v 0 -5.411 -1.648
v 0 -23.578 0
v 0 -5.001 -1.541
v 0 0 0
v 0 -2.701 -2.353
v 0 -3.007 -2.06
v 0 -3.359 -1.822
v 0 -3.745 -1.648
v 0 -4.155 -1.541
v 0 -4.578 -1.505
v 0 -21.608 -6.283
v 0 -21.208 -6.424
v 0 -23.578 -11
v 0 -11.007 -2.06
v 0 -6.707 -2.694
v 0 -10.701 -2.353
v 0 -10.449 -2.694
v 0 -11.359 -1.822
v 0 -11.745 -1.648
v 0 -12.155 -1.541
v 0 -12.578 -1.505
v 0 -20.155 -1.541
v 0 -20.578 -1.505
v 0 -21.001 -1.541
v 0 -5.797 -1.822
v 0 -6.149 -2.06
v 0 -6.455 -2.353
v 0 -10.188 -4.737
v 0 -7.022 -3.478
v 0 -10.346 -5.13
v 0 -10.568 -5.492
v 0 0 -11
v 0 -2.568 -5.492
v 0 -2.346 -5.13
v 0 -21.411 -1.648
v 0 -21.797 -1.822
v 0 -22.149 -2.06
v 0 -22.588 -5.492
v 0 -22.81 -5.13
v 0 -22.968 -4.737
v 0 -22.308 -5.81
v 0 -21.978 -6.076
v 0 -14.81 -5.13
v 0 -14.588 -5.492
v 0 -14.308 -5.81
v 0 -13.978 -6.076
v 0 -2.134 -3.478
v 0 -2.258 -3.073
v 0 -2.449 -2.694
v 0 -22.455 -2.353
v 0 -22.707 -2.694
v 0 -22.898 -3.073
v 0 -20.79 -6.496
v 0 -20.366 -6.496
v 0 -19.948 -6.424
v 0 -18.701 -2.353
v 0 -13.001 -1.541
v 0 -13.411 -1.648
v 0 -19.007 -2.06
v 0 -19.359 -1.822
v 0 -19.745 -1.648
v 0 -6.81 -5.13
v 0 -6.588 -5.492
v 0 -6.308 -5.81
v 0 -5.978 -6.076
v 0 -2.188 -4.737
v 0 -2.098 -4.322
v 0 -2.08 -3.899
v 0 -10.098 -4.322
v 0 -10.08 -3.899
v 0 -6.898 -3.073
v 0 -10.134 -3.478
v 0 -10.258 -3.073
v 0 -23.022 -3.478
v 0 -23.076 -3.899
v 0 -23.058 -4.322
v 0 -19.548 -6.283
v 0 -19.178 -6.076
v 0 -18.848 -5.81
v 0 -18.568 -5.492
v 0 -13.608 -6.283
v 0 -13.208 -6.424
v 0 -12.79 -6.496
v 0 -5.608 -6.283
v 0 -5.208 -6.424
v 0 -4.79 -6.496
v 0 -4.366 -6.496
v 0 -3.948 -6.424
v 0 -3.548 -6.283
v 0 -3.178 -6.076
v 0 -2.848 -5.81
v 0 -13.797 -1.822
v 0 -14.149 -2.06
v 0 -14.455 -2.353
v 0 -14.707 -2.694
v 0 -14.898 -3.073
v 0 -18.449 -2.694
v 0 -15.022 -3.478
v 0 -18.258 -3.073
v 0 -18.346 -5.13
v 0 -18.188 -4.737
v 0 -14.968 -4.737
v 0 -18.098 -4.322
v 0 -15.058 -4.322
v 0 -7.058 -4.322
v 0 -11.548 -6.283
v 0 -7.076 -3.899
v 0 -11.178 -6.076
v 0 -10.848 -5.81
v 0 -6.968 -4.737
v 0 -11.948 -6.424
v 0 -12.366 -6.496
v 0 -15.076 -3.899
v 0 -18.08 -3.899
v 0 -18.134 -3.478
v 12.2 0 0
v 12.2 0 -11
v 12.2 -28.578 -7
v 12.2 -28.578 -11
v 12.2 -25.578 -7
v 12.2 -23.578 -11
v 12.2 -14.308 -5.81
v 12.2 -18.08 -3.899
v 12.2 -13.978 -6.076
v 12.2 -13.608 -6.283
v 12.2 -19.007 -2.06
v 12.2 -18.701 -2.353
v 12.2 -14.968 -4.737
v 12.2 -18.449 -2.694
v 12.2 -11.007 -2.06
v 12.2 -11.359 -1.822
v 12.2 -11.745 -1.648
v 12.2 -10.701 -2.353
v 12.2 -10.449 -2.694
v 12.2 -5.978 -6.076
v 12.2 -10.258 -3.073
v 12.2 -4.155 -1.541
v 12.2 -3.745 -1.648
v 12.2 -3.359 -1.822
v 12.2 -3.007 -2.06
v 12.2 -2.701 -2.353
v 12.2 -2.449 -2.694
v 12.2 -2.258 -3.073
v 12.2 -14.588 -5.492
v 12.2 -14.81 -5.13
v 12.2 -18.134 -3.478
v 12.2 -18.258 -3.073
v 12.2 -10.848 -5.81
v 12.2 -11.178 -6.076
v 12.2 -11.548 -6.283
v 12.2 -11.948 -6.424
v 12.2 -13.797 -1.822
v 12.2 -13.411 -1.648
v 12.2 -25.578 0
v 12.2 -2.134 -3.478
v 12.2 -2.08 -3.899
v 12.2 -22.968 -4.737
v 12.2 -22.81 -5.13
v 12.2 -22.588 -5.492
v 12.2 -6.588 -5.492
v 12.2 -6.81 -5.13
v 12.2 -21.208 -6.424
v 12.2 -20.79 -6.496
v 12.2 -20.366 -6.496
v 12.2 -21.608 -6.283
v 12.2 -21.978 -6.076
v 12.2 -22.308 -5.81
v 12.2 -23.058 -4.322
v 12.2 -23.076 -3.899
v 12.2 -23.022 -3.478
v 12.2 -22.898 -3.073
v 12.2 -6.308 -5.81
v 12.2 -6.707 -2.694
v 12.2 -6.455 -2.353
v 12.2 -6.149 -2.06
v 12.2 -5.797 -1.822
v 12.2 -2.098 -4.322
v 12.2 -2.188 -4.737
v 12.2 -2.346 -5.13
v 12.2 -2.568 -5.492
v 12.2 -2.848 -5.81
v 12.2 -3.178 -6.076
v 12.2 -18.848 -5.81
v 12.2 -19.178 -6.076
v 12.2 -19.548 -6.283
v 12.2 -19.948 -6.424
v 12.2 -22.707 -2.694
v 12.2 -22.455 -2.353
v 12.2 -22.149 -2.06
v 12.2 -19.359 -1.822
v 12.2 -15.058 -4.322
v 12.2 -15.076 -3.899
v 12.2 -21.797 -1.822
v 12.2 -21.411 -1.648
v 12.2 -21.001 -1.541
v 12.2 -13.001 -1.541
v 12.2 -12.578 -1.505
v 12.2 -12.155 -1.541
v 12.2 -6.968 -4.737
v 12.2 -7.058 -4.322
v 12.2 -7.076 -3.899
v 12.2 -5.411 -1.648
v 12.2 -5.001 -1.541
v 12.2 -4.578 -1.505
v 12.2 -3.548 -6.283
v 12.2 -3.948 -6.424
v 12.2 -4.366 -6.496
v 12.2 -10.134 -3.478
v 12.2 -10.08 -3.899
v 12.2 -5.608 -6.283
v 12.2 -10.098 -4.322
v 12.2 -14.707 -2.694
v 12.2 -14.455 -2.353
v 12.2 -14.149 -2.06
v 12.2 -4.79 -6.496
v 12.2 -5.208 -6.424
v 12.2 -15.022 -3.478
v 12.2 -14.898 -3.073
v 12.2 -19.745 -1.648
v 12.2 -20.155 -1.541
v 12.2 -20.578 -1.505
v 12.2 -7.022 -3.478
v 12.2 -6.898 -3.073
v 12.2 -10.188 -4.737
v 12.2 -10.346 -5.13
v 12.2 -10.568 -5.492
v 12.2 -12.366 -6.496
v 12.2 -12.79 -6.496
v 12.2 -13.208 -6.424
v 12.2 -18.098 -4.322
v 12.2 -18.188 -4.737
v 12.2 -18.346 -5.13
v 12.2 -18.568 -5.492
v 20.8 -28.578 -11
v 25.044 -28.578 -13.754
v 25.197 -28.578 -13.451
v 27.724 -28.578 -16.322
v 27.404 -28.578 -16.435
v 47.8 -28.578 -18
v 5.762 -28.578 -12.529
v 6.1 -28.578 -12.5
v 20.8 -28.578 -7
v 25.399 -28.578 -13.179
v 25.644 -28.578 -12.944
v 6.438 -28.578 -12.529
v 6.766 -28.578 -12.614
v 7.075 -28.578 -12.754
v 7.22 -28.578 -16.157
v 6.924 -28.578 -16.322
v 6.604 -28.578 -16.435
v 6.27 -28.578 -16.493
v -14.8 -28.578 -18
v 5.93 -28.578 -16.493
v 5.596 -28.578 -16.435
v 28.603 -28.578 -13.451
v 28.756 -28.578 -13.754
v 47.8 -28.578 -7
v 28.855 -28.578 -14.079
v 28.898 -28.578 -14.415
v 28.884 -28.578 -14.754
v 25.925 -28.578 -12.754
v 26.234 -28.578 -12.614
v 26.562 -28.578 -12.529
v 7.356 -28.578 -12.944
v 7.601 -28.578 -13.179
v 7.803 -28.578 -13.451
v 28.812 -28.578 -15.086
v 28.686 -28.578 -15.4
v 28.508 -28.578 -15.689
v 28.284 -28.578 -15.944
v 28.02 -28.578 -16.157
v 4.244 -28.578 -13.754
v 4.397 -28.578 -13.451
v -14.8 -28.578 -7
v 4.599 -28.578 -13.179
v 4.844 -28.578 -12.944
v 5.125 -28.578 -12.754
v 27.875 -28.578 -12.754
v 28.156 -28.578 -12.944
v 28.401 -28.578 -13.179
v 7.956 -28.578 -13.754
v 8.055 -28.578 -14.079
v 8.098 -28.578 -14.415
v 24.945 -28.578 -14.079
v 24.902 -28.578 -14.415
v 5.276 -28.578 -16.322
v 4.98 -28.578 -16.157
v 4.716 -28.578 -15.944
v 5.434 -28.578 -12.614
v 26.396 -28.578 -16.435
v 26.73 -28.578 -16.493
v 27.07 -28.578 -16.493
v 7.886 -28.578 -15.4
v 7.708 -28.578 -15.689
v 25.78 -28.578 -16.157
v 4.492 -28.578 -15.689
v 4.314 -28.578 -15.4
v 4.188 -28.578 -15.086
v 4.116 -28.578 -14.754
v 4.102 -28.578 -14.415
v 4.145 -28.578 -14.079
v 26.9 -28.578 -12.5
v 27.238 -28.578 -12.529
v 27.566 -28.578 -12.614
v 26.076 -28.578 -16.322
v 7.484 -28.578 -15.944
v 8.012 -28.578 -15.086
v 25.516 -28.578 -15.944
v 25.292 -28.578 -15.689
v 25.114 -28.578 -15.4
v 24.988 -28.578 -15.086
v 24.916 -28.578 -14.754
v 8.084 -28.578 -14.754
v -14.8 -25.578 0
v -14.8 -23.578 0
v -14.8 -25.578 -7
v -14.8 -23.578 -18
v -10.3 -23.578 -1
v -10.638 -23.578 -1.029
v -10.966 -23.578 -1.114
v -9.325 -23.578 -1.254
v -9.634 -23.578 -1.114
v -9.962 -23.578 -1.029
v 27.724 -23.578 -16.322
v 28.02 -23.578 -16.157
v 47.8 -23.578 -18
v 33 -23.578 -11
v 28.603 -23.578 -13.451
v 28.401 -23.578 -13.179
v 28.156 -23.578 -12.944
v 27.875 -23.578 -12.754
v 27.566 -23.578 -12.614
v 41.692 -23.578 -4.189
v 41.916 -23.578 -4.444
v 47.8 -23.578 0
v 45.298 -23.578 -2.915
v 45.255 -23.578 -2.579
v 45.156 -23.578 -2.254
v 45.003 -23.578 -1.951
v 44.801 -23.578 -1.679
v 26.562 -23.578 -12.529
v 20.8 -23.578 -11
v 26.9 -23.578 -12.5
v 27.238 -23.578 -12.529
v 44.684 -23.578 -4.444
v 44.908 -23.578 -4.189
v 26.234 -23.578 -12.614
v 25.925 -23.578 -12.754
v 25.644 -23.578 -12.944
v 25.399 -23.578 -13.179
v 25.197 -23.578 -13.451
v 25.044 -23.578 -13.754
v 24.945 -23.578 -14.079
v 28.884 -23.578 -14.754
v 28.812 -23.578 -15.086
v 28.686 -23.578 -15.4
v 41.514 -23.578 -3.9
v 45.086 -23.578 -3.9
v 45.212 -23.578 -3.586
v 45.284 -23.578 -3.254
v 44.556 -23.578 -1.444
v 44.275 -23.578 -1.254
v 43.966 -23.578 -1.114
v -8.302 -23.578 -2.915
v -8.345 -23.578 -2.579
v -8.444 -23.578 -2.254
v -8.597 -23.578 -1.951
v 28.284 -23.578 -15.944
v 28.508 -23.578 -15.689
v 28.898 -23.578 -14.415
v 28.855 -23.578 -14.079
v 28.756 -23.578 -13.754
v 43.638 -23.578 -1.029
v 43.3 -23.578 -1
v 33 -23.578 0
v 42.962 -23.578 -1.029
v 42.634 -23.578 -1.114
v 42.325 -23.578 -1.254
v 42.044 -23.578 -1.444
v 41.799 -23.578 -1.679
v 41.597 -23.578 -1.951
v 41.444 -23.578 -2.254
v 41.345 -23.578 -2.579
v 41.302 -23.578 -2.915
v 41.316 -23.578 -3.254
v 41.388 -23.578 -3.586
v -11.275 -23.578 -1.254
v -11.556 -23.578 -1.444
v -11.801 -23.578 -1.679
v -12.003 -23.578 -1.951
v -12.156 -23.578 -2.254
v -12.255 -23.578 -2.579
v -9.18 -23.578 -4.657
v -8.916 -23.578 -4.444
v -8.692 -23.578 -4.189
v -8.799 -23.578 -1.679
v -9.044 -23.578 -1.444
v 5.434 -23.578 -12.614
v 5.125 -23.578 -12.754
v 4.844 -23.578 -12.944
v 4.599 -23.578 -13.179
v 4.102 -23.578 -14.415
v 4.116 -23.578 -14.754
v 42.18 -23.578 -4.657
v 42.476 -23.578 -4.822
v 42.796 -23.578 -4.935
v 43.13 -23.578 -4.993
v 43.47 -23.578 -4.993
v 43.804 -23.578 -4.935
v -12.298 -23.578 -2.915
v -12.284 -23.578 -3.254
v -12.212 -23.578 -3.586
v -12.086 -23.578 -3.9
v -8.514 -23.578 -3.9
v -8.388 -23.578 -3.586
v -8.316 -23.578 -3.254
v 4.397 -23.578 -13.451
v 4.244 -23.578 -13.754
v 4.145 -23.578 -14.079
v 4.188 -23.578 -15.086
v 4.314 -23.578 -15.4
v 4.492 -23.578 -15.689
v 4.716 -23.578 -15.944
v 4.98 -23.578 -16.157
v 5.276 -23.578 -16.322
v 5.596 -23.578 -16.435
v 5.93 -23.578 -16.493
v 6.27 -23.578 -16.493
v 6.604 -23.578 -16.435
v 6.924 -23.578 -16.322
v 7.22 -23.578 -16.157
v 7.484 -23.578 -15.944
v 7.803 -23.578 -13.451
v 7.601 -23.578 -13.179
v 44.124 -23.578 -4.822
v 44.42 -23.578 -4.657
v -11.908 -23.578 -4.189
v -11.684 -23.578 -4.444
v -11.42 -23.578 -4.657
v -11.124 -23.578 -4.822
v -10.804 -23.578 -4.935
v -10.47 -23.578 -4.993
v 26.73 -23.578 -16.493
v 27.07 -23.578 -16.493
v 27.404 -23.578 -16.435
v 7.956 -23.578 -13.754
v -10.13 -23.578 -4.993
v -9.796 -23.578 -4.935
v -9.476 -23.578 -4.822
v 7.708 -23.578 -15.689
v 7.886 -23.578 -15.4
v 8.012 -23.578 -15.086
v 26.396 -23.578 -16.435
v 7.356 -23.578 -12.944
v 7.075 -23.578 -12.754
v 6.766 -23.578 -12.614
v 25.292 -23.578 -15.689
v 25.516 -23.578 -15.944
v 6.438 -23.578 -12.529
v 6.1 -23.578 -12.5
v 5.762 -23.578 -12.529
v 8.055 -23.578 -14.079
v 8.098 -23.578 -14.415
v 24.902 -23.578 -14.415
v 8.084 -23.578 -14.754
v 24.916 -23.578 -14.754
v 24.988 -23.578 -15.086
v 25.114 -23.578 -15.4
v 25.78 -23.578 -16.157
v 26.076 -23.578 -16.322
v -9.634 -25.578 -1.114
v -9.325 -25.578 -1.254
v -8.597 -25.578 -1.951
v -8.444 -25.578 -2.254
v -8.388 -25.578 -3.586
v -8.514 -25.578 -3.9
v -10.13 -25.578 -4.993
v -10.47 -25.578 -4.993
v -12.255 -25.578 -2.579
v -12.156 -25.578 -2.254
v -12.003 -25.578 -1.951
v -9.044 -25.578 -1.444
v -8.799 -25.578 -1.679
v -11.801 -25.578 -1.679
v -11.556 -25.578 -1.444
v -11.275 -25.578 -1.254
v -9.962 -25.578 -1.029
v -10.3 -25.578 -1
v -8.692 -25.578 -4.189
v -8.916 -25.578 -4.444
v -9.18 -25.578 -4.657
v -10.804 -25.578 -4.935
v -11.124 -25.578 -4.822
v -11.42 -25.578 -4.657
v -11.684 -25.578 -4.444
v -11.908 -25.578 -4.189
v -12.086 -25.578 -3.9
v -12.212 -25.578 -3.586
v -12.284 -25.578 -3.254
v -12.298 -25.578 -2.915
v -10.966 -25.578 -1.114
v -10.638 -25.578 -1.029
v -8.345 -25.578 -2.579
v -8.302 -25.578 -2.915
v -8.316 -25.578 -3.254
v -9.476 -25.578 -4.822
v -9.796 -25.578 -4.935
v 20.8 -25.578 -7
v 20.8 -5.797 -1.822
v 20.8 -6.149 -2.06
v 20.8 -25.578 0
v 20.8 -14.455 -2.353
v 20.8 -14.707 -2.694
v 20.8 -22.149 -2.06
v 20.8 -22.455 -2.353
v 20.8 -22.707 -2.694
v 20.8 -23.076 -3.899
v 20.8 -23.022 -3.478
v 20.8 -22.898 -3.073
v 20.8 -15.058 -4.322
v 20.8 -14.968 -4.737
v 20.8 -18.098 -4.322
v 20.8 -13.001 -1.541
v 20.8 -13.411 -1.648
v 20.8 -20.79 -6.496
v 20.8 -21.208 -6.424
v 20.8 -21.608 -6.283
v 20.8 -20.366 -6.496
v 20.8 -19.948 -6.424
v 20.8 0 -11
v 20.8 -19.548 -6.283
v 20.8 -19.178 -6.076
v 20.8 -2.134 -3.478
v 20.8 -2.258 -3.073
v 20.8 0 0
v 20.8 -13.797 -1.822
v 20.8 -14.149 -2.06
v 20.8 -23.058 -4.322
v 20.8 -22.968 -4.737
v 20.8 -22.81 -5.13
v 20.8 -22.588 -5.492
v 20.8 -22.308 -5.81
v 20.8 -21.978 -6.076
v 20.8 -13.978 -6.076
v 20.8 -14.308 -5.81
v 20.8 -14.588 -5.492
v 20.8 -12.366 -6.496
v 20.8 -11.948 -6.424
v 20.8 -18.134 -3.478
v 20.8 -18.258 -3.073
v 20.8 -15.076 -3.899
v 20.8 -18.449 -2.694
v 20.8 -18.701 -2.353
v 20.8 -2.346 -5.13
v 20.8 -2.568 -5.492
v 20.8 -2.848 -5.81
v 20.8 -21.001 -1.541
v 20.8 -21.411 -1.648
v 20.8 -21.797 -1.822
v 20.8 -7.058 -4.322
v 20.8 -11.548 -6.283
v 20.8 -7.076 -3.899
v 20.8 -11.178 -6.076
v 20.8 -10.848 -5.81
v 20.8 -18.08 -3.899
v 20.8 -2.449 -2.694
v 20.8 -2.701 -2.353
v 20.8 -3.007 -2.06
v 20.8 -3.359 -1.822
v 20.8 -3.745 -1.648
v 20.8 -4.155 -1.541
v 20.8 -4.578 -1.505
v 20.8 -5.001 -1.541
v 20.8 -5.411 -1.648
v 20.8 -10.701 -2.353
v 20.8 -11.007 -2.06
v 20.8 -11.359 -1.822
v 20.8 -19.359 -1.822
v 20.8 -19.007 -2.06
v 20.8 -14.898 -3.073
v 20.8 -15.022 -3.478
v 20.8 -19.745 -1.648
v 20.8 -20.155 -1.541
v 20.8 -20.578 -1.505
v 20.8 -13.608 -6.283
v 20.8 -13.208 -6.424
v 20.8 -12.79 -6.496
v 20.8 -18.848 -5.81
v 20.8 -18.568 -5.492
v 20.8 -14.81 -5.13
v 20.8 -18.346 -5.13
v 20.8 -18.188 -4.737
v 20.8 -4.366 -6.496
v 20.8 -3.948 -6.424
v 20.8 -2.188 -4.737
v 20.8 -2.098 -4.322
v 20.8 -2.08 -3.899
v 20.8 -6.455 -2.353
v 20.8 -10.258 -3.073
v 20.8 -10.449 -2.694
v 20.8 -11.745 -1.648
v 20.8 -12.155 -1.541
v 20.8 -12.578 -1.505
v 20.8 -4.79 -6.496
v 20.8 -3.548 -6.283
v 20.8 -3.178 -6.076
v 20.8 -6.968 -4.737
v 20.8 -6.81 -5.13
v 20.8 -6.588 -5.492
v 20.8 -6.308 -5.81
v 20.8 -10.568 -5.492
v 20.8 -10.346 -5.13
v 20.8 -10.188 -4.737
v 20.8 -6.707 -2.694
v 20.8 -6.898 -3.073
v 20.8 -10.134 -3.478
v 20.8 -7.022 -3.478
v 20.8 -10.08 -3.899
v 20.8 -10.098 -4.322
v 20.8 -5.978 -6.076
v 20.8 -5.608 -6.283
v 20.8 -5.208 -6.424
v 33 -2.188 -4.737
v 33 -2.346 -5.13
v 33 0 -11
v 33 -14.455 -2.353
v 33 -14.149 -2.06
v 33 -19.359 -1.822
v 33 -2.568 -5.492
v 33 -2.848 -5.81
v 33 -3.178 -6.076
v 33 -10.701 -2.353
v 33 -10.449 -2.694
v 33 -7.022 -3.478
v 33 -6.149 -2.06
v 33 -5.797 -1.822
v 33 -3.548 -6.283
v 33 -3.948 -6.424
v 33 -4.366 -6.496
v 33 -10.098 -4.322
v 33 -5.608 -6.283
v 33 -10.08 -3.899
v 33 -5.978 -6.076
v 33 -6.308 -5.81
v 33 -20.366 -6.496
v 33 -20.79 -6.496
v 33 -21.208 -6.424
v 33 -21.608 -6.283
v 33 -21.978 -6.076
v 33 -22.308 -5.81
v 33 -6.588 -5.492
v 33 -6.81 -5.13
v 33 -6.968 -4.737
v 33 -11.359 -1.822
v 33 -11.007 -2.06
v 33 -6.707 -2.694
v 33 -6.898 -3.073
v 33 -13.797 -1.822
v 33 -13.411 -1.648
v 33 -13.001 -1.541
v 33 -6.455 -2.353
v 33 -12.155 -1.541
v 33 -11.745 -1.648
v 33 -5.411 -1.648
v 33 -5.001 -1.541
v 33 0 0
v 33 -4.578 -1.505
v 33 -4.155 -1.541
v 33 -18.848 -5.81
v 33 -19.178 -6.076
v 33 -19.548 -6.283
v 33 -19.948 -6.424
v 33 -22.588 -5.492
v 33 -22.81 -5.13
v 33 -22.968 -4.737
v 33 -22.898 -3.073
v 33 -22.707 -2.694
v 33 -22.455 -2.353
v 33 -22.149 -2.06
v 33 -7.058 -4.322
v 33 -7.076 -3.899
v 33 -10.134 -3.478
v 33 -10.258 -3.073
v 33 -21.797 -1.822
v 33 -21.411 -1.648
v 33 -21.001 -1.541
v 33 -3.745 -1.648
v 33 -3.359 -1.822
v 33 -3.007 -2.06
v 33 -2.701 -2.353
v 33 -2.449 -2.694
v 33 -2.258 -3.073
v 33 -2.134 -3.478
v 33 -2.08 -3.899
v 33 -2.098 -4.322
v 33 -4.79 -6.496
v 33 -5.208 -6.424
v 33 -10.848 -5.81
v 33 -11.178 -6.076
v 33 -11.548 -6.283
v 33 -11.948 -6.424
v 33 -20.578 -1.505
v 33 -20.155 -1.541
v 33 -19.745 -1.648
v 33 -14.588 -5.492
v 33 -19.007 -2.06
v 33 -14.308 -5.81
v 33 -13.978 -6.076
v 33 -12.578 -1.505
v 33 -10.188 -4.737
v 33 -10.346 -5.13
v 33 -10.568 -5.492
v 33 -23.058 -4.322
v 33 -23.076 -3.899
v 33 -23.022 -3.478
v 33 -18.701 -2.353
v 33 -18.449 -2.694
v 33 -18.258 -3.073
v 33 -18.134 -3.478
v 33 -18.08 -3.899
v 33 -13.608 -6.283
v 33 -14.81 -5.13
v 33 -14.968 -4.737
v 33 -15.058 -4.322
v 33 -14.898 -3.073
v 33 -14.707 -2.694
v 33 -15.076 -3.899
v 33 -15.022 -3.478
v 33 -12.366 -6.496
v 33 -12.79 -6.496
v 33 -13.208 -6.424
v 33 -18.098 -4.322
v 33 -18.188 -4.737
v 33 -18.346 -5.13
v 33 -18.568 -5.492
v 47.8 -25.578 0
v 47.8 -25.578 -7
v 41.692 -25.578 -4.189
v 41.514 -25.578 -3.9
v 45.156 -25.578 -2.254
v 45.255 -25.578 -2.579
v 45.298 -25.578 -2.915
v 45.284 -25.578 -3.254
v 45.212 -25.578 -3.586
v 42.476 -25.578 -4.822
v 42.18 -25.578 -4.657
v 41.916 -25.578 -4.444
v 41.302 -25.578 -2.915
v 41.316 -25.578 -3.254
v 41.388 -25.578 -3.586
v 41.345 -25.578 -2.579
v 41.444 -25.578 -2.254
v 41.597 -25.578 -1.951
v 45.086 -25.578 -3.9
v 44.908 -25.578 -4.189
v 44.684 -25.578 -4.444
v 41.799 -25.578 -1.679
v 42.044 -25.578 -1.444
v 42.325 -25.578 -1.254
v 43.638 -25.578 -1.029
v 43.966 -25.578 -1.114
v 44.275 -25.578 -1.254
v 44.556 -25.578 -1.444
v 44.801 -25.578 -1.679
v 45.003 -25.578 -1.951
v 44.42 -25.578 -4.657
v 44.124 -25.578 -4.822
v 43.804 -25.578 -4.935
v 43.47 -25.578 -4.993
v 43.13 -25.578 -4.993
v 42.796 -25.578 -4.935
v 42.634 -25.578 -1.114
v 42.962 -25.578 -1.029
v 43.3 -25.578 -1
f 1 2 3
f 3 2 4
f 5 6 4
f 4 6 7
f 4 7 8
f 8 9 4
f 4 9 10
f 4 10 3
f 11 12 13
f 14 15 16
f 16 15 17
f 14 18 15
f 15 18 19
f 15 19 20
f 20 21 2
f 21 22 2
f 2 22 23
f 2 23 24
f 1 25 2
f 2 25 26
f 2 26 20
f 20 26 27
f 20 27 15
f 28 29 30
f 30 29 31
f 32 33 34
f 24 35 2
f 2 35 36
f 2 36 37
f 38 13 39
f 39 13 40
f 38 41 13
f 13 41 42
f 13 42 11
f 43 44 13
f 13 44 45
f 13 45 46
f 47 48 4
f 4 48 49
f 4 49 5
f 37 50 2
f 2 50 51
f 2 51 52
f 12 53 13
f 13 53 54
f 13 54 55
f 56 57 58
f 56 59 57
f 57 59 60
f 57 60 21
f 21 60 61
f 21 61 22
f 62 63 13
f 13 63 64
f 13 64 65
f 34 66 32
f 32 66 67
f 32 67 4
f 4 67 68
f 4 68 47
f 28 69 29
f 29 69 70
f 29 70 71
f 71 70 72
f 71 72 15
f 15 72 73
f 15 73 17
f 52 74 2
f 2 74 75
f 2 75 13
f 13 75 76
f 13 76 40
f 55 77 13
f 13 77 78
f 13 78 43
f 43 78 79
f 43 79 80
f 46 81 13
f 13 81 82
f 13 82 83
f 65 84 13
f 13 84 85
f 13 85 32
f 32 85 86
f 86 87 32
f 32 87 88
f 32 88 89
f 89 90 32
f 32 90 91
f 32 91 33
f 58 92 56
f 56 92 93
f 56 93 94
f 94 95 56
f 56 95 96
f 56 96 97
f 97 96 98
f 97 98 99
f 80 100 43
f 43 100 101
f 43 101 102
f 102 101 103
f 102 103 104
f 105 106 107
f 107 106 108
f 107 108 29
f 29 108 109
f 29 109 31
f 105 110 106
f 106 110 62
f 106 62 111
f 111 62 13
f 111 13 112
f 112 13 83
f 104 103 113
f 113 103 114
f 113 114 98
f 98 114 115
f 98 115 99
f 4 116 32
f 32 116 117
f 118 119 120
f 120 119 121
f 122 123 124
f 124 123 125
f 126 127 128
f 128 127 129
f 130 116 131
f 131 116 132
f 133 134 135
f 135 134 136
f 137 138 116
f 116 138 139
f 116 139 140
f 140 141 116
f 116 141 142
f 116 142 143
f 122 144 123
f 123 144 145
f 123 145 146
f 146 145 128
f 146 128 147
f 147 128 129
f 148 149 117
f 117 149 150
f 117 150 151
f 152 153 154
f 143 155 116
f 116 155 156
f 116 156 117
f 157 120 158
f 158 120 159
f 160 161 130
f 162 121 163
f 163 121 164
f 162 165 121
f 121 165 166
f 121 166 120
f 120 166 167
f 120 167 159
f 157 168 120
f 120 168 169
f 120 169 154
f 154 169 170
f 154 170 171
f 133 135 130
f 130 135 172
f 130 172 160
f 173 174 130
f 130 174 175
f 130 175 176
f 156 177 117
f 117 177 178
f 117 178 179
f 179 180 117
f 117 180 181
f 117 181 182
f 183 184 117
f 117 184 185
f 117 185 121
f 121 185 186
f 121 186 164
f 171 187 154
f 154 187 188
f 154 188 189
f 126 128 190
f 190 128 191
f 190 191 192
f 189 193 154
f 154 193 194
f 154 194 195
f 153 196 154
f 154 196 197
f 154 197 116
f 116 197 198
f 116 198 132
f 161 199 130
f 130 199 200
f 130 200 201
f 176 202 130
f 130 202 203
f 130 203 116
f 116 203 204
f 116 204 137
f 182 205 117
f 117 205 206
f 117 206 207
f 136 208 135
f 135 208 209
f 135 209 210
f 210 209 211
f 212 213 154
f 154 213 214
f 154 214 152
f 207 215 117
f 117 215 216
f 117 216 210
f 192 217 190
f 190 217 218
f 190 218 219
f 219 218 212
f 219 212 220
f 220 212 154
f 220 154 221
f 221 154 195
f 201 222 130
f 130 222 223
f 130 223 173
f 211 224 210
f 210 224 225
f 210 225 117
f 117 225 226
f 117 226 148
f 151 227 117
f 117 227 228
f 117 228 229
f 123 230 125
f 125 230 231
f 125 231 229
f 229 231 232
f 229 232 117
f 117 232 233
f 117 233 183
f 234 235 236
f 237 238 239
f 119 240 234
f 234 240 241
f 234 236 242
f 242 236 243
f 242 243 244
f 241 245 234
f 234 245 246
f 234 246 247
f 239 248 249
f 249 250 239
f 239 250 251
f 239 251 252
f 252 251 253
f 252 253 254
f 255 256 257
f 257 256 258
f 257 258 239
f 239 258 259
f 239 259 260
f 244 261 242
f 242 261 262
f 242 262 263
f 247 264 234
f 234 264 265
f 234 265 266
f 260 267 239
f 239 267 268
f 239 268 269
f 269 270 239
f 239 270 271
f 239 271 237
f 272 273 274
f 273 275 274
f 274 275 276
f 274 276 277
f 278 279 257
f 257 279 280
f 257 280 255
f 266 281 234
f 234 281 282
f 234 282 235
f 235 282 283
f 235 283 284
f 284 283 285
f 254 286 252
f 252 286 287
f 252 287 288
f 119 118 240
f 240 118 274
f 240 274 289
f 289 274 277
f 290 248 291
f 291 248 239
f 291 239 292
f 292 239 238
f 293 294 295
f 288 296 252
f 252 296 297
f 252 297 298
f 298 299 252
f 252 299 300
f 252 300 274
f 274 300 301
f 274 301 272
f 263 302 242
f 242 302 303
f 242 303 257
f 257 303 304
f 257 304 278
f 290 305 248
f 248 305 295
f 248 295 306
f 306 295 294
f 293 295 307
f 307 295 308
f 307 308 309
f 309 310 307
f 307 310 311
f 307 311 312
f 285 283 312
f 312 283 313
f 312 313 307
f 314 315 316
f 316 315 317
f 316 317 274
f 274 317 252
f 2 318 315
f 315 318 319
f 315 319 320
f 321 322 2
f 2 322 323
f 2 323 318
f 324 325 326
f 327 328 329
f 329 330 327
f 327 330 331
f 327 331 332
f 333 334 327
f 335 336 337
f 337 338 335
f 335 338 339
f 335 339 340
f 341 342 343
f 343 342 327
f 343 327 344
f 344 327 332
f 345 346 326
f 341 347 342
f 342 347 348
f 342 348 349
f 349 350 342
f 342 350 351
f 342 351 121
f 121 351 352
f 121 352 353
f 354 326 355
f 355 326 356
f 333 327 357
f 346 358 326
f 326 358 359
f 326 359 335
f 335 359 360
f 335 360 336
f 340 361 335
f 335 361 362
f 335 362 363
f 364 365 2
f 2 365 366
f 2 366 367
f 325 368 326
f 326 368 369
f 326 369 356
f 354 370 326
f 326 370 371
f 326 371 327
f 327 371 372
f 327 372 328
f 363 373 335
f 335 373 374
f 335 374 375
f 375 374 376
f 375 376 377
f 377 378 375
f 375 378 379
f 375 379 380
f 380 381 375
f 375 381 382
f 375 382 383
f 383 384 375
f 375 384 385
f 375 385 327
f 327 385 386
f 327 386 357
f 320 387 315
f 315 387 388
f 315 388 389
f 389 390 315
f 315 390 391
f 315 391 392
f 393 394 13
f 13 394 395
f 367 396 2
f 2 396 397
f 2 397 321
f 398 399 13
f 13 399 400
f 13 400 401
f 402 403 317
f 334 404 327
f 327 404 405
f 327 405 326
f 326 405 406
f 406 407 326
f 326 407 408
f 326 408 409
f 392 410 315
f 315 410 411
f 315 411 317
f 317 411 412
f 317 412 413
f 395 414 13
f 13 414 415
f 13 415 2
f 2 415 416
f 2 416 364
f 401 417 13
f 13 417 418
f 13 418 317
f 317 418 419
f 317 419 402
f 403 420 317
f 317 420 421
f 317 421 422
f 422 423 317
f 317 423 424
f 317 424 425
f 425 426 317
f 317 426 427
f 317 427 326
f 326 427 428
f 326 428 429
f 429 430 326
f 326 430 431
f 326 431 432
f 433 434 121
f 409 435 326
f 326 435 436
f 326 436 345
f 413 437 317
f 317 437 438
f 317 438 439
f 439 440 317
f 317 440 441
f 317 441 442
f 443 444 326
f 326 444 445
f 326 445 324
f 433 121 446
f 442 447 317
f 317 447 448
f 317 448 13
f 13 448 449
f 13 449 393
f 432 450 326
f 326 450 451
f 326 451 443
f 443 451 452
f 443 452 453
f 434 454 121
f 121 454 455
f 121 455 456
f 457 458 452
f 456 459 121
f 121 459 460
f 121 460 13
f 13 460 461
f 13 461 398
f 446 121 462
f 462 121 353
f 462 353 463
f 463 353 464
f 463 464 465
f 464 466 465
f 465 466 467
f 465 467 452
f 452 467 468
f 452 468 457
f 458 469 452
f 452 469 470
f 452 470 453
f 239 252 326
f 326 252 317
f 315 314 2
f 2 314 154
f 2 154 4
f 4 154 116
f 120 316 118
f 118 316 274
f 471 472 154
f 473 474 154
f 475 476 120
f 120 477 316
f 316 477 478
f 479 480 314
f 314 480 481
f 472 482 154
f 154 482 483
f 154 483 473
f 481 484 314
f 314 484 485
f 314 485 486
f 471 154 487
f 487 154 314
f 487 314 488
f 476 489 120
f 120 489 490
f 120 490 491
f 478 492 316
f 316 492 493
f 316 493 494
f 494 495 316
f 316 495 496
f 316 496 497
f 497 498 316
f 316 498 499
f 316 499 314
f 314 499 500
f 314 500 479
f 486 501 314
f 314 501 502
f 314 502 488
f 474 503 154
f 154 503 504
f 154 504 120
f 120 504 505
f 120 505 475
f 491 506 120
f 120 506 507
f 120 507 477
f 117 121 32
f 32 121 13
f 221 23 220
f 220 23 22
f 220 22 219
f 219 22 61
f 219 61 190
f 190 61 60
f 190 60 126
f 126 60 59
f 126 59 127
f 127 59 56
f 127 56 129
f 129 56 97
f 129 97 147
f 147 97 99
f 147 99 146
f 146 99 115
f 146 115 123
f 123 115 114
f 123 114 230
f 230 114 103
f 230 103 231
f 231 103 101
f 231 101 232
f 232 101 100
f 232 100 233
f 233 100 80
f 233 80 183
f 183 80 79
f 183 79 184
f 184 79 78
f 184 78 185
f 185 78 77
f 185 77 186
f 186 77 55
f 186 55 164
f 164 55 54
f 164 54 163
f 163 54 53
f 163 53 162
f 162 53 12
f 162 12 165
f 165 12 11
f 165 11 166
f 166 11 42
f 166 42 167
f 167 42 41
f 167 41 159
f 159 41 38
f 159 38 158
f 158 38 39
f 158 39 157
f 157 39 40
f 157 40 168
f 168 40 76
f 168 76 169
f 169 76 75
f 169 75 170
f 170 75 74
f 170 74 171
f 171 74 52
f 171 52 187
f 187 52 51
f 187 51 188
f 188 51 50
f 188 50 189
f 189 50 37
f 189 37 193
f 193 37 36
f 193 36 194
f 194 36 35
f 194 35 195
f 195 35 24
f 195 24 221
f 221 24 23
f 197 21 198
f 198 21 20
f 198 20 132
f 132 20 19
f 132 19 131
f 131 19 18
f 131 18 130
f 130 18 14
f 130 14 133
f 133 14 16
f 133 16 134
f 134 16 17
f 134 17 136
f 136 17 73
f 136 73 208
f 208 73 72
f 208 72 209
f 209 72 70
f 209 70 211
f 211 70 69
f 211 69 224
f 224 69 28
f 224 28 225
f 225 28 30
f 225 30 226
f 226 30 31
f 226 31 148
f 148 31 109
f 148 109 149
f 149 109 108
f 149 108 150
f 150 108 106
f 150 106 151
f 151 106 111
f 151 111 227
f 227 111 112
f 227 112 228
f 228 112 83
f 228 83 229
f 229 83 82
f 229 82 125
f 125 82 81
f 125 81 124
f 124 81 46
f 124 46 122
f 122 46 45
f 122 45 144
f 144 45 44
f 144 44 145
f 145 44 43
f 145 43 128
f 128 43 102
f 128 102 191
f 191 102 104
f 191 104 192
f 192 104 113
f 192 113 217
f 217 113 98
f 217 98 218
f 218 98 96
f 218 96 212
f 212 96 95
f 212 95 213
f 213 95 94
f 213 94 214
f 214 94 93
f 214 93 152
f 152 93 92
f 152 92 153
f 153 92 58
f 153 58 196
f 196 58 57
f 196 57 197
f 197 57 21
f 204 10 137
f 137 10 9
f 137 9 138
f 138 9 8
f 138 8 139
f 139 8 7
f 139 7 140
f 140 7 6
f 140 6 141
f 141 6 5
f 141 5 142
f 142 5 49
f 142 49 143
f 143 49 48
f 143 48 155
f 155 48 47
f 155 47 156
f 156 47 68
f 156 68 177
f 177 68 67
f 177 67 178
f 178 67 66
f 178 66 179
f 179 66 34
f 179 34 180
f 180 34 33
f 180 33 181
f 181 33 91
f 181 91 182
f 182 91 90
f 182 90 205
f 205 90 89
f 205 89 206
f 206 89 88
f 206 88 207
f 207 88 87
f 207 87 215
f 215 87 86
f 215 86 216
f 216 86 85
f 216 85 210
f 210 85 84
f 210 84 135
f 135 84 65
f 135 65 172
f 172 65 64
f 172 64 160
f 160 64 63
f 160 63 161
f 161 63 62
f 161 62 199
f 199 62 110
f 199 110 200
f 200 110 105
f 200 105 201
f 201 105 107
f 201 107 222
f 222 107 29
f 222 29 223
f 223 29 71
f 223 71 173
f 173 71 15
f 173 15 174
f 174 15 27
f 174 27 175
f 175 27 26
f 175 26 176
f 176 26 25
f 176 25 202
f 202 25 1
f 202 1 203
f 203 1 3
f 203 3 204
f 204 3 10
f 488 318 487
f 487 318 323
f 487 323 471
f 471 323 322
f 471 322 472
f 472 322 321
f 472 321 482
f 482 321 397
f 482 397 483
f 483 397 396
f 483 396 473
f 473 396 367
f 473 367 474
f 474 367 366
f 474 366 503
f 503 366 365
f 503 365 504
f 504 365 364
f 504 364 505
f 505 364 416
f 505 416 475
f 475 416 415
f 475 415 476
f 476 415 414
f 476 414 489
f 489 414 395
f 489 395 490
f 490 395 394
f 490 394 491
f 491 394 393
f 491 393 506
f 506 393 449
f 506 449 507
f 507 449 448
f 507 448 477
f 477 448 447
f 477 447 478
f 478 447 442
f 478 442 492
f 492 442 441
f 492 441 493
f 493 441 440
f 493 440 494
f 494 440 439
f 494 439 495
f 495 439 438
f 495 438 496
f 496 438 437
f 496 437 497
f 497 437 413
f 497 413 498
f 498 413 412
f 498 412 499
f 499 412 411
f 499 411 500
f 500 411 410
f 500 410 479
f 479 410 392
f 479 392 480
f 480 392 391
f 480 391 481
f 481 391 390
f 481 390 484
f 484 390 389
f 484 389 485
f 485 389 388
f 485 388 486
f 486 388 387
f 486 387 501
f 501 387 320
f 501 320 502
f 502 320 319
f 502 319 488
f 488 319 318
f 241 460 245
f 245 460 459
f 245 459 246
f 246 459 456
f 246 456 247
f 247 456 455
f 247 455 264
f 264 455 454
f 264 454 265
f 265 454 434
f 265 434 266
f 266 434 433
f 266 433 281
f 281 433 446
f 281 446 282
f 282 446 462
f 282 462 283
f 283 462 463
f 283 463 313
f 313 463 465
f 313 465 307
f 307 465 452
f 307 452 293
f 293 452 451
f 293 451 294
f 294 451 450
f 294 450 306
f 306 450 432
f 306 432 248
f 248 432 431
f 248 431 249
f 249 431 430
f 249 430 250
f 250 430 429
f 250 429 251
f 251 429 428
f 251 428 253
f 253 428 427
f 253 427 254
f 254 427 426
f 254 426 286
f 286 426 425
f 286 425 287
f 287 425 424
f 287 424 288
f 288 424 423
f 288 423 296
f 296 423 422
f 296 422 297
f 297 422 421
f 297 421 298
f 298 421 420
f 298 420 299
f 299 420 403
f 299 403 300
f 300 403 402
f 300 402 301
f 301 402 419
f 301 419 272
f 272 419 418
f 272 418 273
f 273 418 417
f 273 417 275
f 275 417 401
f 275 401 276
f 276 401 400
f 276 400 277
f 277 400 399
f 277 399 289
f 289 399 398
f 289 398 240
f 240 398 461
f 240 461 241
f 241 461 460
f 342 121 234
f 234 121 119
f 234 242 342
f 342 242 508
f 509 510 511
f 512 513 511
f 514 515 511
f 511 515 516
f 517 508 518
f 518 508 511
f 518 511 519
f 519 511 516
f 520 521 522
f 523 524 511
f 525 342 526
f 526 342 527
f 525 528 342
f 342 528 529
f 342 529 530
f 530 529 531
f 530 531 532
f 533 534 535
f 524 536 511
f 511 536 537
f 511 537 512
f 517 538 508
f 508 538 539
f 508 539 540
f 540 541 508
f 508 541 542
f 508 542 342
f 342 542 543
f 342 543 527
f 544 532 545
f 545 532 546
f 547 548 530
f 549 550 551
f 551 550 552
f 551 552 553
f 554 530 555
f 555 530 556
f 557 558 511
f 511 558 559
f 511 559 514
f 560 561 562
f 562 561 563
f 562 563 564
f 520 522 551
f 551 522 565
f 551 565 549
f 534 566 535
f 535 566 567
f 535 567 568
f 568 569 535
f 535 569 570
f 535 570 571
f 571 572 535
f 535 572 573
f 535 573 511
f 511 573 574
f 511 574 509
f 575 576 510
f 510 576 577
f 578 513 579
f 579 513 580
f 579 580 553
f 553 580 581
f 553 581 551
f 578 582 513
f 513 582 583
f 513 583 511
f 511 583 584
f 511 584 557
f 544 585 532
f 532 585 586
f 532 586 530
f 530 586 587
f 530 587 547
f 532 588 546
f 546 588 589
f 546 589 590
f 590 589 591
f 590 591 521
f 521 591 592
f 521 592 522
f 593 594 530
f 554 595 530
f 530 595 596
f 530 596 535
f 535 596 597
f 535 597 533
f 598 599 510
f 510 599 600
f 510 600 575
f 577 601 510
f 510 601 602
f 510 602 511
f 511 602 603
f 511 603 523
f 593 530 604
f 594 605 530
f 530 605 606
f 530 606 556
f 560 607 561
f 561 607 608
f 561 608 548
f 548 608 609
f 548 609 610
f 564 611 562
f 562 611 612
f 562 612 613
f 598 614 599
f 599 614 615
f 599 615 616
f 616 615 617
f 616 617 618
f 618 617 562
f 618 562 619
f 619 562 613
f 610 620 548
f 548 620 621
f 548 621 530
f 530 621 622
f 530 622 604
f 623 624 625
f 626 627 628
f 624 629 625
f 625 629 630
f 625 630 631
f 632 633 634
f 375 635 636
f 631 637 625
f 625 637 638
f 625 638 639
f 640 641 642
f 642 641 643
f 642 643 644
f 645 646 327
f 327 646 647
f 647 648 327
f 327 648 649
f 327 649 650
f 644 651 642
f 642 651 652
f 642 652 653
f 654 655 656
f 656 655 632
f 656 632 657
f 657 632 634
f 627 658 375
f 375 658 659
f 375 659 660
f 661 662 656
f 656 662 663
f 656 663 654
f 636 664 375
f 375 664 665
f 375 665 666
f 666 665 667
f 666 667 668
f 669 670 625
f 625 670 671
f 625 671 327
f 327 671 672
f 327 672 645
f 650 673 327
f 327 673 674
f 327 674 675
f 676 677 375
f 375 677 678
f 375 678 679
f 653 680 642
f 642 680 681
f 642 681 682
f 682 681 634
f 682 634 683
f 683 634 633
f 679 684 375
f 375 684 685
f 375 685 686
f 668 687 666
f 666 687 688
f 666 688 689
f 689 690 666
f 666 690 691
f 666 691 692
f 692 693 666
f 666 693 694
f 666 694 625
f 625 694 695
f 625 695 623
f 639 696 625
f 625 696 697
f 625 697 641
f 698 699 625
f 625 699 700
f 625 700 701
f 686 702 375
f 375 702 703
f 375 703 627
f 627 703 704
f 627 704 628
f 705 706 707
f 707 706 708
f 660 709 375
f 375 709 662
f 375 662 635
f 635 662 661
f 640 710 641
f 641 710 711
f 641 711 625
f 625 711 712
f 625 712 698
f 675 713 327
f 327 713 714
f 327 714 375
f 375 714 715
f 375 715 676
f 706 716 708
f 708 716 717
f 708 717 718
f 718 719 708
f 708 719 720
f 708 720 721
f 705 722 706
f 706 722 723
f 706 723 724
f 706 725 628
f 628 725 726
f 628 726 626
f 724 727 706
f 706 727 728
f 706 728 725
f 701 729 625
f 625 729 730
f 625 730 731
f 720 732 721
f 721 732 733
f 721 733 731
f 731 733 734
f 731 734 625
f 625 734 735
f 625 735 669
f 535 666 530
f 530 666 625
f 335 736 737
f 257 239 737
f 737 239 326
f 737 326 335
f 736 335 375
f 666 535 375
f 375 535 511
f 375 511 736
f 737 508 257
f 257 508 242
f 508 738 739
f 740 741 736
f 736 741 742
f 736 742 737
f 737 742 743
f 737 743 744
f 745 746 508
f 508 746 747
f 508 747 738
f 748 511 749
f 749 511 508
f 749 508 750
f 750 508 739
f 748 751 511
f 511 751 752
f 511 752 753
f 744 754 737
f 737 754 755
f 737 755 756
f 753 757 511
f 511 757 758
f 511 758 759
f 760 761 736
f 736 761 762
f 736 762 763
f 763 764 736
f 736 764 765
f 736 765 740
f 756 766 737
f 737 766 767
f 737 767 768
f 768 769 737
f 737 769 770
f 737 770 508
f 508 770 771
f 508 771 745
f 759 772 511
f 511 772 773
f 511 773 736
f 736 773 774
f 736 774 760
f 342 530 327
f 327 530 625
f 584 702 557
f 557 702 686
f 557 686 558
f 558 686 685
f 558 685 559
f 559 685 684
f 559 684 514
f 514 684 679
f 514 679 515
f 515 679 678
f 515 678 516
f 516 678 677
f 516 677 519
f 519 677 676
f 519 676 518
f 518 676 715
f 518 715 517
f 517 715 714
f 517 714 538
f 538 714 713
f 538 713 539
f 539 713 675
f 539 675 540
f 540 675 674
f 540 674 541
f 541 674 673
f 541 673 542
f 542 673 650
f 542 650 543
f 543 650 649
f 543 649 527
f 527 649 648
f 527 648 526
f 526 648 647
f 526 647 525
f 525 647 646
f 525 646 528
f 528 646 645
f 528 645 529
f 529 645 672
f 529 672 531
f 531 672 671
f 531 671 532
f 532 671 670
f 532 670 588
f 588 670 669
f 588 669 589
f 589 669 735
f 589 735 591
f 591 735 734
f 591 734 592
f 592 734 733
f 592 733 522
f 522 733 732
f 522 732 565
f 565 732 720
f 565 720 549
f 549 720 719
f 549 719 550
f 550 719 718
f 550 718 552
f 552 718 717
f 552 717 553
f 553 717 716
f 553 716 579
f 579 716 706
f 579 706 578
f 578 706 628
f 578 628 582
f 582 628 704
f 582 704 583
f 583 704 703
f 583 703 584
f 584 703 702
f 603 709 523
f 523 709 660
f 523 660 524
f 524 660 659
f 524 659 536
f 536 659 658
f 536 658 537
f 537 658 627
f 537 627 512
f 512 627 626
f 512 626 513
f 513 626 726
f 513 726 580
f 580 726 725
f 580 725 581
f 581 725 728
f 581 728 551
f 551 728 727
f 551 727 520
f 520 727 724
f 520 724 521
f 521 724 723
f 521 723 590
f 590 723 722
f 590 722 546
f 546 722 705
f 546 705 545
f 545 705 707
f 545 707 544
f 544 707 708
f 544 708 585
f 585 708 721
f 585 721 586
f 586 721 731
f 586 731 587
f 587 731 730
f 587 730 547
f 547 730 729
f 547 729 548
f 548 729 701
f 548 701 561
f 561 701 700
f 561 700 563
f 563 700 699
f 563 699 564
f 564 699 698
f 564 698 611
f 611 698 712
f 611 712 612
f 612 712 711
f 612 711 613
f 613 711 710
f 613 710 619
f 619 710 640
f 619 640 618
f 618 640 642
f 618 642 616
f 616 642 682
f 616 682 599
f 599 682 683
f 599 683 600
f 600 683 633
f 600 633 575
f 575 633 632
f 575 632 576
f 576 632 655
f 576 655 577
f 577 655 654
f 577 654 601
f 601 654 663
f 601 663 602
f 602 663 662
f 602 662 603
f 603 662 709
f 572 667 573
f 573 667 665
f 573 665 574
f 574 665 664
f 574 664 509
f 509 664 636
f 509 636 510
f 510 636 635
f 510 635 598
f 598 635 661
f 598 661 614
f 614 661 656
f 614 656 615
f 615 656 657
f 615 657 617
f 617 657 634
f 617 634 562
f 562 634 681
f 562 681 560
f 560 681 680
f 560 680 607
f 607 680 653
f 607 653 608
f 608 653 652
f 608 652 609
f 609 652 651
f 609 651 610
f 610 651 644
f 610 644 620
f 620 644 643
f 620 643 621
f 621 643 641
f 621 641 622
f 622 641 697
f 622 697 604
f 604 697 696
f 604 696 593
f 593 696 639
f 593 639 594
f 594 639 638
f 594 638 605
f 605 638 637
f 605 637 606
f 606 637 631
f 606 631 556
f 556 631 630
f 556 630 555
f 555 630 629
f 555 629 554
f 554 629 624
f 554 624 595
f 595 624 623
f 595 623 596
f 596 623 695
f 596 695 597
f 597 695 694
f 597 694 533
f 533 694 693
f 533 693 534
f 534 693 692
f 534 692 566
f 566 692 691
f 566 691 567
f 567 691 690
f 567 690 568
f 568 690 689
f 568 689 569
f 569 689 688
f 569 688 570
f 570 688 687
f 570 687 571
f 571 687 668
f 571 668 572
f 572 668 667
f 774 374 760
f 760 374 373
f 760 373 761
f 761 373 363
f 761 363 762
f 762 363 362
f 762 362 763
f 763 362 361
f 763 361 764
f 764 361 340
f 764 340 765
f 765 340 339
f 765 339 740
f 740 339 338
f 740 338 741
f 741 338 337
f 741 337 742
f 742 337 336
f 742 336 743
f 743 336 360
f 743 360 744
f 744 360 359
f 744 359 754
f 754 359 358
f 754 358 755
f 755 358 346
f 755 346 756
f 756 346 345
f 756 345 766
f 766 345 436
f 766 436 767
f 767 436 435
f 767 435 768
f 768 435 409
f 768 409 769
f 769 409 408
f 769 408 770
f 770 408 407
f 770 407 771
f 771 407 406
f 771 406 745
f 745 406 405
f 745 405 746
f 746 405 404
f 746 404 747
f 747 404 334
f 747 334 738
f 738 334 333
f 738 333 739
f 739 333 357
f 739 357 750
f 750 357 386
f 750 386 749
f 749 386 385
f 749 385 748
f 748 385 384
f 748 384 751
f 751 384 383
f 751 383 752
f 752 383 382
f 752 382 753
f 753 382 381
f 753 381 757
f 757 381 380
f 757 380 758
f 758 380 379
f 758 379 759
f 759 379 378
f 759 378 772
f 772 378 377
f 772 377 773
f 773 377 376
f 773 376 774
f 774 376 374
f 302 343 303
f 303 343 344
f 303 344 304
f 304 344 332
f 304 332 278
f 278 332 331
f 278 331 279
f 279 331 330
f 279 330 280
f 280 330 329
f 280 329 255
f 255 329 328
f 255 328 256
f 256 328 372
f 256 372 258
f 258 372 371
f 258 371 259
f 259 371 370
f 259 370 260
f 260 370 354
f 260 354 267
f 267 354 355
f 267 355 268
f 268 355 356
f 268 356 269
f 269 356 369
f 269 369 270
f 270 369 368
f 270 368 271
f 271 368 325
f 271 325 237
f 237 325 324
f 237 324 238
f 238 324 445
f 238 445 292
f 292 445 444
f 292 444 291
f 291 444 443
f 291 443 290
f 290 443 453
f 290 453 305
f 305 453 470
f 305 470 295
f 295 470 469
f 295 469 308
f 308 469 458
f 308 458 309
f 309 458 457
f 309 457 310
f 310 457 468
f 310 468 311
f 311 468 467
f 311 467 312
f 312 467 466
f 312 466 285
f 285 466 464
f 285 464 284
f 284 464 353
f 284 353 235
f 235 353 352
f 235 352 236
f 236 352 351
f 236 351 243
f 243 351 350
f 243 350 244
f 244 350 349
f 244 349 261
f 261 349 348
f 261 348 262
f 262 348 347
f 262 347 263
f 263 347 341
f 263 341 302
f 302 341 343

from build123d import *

# Parameters (mm, degrees)
BOSS_EXTRUDE1_DEPTH     = 18
CUT_EXTRUDE1_DEPTH      = 37.874680799
CUT_EXTRUDE1_DEPTH_BACK = 37.874680799
SKETCH2_R               = 2.5
SKETCH2_W               = 7
SKETCH2_H               = 23.578
SKETCH2_H_2             = 3
SKETCH3_R               = 2
CUT_EXTRUDE2_DEPTH      = 34.150597038
BOSS_EXTRUDE2_REACH     = 51.072
SKETCH4_W               = 7
SKETCH4_H               = 5


with BuildPart() as part:
    # Sketch1 → Boss-Extrude1 (new body)
    with BuildSketch(Plane.XY):
        Polygon((0, 0), (12.2, 0), (12.2, -28.578), (-14.8, -28.578), (-14.8, -23.578), (0, -23.578), align=None)
    extrude(amount=-BOSS_EXTRUDE1_DEPTH)

    # Sketch2 → Cut-Extrude1 (cut, two sides: drawn at the far end of the back side and taken through both)
    with BuildSketch(Plane.ZY.offset(-CUT_EXTRUDE1_DEPTH_BACK)):
        with Locations((-4.004934739, -20.578)):
            Circle(SKETCH2_R)
        with Locations((-4.004934739, -12.578)):
            Circle(SKETCH2_R)
        with Locations((-4.004934739, -4.578)):
            Circle(SKETCH2_R)
        with Locations((-14.5, -11.789)):
            Rectangle(SKETCH2_W, SKETCH2_H)
        with Locations((-3.5, -27.078)):
            Rectangle(SKETCH2_W, SKETCH2_H_2)
    extrude(amount=CUT_EXTRUDE1_DEPTH + CUT_EXTRUDE1_DEPTH_BACK, mode=Mode.SUBTRACT)

    # Sketch3 → Cut-Extrude2 (cut, through all)
    with BuildSketch(Plane(origin=(0, -23.578, 0), x_dir=(1, 0, 0), z_dir=(0, 1, 0))):
        with Locations(Location((-10.3, 3, 0), (0, 0, 270))):
            Circle(SKETCH3_R)
        with Locations(Location((6.1, 14.5, 0), (0, 0, 270))):
            Circle(SKETCH3_R)
    extrude(amount=-CUT_EXTRUDE2_DEPTH, mode=Mode.SUBTRACT)


with BuildPart() as body_2:
    # Mirror2: mirrored copy
    add(part.part.mirror(Plane(origin=(16.5, 0, 0), x_dir=(0, 0, 1), z_dir=(1, 0, 0))))

    # Sketch4 → Boss-Extrude2 (add, up to next)
    with BuildSketch(Plane(origin=(12.2, 0, 0), x_dir=(0, 0, -1), z_dir=(1, 0, 0)), mode=Mode.PRIVATE) as boss_extrude2_sk1:
        with Locations((14.5, -26.078)):
            Rectangle(SKETCH4_W, SKETCH4_H)
    boss_extrude2_tool1 = extrude(boss_extrude2_sk1.sketch, amount=BOSS_EXTRUDE2_REACH, mode=Mode.PRIVATE) - body_2.part

    add(part.part)  # Boss-Extrude2 merges part
    add(boss_extrude2_tool1.solids().sort_by_distance((12.2, -26.078, -14.5))[0])


solid = body_2.part
